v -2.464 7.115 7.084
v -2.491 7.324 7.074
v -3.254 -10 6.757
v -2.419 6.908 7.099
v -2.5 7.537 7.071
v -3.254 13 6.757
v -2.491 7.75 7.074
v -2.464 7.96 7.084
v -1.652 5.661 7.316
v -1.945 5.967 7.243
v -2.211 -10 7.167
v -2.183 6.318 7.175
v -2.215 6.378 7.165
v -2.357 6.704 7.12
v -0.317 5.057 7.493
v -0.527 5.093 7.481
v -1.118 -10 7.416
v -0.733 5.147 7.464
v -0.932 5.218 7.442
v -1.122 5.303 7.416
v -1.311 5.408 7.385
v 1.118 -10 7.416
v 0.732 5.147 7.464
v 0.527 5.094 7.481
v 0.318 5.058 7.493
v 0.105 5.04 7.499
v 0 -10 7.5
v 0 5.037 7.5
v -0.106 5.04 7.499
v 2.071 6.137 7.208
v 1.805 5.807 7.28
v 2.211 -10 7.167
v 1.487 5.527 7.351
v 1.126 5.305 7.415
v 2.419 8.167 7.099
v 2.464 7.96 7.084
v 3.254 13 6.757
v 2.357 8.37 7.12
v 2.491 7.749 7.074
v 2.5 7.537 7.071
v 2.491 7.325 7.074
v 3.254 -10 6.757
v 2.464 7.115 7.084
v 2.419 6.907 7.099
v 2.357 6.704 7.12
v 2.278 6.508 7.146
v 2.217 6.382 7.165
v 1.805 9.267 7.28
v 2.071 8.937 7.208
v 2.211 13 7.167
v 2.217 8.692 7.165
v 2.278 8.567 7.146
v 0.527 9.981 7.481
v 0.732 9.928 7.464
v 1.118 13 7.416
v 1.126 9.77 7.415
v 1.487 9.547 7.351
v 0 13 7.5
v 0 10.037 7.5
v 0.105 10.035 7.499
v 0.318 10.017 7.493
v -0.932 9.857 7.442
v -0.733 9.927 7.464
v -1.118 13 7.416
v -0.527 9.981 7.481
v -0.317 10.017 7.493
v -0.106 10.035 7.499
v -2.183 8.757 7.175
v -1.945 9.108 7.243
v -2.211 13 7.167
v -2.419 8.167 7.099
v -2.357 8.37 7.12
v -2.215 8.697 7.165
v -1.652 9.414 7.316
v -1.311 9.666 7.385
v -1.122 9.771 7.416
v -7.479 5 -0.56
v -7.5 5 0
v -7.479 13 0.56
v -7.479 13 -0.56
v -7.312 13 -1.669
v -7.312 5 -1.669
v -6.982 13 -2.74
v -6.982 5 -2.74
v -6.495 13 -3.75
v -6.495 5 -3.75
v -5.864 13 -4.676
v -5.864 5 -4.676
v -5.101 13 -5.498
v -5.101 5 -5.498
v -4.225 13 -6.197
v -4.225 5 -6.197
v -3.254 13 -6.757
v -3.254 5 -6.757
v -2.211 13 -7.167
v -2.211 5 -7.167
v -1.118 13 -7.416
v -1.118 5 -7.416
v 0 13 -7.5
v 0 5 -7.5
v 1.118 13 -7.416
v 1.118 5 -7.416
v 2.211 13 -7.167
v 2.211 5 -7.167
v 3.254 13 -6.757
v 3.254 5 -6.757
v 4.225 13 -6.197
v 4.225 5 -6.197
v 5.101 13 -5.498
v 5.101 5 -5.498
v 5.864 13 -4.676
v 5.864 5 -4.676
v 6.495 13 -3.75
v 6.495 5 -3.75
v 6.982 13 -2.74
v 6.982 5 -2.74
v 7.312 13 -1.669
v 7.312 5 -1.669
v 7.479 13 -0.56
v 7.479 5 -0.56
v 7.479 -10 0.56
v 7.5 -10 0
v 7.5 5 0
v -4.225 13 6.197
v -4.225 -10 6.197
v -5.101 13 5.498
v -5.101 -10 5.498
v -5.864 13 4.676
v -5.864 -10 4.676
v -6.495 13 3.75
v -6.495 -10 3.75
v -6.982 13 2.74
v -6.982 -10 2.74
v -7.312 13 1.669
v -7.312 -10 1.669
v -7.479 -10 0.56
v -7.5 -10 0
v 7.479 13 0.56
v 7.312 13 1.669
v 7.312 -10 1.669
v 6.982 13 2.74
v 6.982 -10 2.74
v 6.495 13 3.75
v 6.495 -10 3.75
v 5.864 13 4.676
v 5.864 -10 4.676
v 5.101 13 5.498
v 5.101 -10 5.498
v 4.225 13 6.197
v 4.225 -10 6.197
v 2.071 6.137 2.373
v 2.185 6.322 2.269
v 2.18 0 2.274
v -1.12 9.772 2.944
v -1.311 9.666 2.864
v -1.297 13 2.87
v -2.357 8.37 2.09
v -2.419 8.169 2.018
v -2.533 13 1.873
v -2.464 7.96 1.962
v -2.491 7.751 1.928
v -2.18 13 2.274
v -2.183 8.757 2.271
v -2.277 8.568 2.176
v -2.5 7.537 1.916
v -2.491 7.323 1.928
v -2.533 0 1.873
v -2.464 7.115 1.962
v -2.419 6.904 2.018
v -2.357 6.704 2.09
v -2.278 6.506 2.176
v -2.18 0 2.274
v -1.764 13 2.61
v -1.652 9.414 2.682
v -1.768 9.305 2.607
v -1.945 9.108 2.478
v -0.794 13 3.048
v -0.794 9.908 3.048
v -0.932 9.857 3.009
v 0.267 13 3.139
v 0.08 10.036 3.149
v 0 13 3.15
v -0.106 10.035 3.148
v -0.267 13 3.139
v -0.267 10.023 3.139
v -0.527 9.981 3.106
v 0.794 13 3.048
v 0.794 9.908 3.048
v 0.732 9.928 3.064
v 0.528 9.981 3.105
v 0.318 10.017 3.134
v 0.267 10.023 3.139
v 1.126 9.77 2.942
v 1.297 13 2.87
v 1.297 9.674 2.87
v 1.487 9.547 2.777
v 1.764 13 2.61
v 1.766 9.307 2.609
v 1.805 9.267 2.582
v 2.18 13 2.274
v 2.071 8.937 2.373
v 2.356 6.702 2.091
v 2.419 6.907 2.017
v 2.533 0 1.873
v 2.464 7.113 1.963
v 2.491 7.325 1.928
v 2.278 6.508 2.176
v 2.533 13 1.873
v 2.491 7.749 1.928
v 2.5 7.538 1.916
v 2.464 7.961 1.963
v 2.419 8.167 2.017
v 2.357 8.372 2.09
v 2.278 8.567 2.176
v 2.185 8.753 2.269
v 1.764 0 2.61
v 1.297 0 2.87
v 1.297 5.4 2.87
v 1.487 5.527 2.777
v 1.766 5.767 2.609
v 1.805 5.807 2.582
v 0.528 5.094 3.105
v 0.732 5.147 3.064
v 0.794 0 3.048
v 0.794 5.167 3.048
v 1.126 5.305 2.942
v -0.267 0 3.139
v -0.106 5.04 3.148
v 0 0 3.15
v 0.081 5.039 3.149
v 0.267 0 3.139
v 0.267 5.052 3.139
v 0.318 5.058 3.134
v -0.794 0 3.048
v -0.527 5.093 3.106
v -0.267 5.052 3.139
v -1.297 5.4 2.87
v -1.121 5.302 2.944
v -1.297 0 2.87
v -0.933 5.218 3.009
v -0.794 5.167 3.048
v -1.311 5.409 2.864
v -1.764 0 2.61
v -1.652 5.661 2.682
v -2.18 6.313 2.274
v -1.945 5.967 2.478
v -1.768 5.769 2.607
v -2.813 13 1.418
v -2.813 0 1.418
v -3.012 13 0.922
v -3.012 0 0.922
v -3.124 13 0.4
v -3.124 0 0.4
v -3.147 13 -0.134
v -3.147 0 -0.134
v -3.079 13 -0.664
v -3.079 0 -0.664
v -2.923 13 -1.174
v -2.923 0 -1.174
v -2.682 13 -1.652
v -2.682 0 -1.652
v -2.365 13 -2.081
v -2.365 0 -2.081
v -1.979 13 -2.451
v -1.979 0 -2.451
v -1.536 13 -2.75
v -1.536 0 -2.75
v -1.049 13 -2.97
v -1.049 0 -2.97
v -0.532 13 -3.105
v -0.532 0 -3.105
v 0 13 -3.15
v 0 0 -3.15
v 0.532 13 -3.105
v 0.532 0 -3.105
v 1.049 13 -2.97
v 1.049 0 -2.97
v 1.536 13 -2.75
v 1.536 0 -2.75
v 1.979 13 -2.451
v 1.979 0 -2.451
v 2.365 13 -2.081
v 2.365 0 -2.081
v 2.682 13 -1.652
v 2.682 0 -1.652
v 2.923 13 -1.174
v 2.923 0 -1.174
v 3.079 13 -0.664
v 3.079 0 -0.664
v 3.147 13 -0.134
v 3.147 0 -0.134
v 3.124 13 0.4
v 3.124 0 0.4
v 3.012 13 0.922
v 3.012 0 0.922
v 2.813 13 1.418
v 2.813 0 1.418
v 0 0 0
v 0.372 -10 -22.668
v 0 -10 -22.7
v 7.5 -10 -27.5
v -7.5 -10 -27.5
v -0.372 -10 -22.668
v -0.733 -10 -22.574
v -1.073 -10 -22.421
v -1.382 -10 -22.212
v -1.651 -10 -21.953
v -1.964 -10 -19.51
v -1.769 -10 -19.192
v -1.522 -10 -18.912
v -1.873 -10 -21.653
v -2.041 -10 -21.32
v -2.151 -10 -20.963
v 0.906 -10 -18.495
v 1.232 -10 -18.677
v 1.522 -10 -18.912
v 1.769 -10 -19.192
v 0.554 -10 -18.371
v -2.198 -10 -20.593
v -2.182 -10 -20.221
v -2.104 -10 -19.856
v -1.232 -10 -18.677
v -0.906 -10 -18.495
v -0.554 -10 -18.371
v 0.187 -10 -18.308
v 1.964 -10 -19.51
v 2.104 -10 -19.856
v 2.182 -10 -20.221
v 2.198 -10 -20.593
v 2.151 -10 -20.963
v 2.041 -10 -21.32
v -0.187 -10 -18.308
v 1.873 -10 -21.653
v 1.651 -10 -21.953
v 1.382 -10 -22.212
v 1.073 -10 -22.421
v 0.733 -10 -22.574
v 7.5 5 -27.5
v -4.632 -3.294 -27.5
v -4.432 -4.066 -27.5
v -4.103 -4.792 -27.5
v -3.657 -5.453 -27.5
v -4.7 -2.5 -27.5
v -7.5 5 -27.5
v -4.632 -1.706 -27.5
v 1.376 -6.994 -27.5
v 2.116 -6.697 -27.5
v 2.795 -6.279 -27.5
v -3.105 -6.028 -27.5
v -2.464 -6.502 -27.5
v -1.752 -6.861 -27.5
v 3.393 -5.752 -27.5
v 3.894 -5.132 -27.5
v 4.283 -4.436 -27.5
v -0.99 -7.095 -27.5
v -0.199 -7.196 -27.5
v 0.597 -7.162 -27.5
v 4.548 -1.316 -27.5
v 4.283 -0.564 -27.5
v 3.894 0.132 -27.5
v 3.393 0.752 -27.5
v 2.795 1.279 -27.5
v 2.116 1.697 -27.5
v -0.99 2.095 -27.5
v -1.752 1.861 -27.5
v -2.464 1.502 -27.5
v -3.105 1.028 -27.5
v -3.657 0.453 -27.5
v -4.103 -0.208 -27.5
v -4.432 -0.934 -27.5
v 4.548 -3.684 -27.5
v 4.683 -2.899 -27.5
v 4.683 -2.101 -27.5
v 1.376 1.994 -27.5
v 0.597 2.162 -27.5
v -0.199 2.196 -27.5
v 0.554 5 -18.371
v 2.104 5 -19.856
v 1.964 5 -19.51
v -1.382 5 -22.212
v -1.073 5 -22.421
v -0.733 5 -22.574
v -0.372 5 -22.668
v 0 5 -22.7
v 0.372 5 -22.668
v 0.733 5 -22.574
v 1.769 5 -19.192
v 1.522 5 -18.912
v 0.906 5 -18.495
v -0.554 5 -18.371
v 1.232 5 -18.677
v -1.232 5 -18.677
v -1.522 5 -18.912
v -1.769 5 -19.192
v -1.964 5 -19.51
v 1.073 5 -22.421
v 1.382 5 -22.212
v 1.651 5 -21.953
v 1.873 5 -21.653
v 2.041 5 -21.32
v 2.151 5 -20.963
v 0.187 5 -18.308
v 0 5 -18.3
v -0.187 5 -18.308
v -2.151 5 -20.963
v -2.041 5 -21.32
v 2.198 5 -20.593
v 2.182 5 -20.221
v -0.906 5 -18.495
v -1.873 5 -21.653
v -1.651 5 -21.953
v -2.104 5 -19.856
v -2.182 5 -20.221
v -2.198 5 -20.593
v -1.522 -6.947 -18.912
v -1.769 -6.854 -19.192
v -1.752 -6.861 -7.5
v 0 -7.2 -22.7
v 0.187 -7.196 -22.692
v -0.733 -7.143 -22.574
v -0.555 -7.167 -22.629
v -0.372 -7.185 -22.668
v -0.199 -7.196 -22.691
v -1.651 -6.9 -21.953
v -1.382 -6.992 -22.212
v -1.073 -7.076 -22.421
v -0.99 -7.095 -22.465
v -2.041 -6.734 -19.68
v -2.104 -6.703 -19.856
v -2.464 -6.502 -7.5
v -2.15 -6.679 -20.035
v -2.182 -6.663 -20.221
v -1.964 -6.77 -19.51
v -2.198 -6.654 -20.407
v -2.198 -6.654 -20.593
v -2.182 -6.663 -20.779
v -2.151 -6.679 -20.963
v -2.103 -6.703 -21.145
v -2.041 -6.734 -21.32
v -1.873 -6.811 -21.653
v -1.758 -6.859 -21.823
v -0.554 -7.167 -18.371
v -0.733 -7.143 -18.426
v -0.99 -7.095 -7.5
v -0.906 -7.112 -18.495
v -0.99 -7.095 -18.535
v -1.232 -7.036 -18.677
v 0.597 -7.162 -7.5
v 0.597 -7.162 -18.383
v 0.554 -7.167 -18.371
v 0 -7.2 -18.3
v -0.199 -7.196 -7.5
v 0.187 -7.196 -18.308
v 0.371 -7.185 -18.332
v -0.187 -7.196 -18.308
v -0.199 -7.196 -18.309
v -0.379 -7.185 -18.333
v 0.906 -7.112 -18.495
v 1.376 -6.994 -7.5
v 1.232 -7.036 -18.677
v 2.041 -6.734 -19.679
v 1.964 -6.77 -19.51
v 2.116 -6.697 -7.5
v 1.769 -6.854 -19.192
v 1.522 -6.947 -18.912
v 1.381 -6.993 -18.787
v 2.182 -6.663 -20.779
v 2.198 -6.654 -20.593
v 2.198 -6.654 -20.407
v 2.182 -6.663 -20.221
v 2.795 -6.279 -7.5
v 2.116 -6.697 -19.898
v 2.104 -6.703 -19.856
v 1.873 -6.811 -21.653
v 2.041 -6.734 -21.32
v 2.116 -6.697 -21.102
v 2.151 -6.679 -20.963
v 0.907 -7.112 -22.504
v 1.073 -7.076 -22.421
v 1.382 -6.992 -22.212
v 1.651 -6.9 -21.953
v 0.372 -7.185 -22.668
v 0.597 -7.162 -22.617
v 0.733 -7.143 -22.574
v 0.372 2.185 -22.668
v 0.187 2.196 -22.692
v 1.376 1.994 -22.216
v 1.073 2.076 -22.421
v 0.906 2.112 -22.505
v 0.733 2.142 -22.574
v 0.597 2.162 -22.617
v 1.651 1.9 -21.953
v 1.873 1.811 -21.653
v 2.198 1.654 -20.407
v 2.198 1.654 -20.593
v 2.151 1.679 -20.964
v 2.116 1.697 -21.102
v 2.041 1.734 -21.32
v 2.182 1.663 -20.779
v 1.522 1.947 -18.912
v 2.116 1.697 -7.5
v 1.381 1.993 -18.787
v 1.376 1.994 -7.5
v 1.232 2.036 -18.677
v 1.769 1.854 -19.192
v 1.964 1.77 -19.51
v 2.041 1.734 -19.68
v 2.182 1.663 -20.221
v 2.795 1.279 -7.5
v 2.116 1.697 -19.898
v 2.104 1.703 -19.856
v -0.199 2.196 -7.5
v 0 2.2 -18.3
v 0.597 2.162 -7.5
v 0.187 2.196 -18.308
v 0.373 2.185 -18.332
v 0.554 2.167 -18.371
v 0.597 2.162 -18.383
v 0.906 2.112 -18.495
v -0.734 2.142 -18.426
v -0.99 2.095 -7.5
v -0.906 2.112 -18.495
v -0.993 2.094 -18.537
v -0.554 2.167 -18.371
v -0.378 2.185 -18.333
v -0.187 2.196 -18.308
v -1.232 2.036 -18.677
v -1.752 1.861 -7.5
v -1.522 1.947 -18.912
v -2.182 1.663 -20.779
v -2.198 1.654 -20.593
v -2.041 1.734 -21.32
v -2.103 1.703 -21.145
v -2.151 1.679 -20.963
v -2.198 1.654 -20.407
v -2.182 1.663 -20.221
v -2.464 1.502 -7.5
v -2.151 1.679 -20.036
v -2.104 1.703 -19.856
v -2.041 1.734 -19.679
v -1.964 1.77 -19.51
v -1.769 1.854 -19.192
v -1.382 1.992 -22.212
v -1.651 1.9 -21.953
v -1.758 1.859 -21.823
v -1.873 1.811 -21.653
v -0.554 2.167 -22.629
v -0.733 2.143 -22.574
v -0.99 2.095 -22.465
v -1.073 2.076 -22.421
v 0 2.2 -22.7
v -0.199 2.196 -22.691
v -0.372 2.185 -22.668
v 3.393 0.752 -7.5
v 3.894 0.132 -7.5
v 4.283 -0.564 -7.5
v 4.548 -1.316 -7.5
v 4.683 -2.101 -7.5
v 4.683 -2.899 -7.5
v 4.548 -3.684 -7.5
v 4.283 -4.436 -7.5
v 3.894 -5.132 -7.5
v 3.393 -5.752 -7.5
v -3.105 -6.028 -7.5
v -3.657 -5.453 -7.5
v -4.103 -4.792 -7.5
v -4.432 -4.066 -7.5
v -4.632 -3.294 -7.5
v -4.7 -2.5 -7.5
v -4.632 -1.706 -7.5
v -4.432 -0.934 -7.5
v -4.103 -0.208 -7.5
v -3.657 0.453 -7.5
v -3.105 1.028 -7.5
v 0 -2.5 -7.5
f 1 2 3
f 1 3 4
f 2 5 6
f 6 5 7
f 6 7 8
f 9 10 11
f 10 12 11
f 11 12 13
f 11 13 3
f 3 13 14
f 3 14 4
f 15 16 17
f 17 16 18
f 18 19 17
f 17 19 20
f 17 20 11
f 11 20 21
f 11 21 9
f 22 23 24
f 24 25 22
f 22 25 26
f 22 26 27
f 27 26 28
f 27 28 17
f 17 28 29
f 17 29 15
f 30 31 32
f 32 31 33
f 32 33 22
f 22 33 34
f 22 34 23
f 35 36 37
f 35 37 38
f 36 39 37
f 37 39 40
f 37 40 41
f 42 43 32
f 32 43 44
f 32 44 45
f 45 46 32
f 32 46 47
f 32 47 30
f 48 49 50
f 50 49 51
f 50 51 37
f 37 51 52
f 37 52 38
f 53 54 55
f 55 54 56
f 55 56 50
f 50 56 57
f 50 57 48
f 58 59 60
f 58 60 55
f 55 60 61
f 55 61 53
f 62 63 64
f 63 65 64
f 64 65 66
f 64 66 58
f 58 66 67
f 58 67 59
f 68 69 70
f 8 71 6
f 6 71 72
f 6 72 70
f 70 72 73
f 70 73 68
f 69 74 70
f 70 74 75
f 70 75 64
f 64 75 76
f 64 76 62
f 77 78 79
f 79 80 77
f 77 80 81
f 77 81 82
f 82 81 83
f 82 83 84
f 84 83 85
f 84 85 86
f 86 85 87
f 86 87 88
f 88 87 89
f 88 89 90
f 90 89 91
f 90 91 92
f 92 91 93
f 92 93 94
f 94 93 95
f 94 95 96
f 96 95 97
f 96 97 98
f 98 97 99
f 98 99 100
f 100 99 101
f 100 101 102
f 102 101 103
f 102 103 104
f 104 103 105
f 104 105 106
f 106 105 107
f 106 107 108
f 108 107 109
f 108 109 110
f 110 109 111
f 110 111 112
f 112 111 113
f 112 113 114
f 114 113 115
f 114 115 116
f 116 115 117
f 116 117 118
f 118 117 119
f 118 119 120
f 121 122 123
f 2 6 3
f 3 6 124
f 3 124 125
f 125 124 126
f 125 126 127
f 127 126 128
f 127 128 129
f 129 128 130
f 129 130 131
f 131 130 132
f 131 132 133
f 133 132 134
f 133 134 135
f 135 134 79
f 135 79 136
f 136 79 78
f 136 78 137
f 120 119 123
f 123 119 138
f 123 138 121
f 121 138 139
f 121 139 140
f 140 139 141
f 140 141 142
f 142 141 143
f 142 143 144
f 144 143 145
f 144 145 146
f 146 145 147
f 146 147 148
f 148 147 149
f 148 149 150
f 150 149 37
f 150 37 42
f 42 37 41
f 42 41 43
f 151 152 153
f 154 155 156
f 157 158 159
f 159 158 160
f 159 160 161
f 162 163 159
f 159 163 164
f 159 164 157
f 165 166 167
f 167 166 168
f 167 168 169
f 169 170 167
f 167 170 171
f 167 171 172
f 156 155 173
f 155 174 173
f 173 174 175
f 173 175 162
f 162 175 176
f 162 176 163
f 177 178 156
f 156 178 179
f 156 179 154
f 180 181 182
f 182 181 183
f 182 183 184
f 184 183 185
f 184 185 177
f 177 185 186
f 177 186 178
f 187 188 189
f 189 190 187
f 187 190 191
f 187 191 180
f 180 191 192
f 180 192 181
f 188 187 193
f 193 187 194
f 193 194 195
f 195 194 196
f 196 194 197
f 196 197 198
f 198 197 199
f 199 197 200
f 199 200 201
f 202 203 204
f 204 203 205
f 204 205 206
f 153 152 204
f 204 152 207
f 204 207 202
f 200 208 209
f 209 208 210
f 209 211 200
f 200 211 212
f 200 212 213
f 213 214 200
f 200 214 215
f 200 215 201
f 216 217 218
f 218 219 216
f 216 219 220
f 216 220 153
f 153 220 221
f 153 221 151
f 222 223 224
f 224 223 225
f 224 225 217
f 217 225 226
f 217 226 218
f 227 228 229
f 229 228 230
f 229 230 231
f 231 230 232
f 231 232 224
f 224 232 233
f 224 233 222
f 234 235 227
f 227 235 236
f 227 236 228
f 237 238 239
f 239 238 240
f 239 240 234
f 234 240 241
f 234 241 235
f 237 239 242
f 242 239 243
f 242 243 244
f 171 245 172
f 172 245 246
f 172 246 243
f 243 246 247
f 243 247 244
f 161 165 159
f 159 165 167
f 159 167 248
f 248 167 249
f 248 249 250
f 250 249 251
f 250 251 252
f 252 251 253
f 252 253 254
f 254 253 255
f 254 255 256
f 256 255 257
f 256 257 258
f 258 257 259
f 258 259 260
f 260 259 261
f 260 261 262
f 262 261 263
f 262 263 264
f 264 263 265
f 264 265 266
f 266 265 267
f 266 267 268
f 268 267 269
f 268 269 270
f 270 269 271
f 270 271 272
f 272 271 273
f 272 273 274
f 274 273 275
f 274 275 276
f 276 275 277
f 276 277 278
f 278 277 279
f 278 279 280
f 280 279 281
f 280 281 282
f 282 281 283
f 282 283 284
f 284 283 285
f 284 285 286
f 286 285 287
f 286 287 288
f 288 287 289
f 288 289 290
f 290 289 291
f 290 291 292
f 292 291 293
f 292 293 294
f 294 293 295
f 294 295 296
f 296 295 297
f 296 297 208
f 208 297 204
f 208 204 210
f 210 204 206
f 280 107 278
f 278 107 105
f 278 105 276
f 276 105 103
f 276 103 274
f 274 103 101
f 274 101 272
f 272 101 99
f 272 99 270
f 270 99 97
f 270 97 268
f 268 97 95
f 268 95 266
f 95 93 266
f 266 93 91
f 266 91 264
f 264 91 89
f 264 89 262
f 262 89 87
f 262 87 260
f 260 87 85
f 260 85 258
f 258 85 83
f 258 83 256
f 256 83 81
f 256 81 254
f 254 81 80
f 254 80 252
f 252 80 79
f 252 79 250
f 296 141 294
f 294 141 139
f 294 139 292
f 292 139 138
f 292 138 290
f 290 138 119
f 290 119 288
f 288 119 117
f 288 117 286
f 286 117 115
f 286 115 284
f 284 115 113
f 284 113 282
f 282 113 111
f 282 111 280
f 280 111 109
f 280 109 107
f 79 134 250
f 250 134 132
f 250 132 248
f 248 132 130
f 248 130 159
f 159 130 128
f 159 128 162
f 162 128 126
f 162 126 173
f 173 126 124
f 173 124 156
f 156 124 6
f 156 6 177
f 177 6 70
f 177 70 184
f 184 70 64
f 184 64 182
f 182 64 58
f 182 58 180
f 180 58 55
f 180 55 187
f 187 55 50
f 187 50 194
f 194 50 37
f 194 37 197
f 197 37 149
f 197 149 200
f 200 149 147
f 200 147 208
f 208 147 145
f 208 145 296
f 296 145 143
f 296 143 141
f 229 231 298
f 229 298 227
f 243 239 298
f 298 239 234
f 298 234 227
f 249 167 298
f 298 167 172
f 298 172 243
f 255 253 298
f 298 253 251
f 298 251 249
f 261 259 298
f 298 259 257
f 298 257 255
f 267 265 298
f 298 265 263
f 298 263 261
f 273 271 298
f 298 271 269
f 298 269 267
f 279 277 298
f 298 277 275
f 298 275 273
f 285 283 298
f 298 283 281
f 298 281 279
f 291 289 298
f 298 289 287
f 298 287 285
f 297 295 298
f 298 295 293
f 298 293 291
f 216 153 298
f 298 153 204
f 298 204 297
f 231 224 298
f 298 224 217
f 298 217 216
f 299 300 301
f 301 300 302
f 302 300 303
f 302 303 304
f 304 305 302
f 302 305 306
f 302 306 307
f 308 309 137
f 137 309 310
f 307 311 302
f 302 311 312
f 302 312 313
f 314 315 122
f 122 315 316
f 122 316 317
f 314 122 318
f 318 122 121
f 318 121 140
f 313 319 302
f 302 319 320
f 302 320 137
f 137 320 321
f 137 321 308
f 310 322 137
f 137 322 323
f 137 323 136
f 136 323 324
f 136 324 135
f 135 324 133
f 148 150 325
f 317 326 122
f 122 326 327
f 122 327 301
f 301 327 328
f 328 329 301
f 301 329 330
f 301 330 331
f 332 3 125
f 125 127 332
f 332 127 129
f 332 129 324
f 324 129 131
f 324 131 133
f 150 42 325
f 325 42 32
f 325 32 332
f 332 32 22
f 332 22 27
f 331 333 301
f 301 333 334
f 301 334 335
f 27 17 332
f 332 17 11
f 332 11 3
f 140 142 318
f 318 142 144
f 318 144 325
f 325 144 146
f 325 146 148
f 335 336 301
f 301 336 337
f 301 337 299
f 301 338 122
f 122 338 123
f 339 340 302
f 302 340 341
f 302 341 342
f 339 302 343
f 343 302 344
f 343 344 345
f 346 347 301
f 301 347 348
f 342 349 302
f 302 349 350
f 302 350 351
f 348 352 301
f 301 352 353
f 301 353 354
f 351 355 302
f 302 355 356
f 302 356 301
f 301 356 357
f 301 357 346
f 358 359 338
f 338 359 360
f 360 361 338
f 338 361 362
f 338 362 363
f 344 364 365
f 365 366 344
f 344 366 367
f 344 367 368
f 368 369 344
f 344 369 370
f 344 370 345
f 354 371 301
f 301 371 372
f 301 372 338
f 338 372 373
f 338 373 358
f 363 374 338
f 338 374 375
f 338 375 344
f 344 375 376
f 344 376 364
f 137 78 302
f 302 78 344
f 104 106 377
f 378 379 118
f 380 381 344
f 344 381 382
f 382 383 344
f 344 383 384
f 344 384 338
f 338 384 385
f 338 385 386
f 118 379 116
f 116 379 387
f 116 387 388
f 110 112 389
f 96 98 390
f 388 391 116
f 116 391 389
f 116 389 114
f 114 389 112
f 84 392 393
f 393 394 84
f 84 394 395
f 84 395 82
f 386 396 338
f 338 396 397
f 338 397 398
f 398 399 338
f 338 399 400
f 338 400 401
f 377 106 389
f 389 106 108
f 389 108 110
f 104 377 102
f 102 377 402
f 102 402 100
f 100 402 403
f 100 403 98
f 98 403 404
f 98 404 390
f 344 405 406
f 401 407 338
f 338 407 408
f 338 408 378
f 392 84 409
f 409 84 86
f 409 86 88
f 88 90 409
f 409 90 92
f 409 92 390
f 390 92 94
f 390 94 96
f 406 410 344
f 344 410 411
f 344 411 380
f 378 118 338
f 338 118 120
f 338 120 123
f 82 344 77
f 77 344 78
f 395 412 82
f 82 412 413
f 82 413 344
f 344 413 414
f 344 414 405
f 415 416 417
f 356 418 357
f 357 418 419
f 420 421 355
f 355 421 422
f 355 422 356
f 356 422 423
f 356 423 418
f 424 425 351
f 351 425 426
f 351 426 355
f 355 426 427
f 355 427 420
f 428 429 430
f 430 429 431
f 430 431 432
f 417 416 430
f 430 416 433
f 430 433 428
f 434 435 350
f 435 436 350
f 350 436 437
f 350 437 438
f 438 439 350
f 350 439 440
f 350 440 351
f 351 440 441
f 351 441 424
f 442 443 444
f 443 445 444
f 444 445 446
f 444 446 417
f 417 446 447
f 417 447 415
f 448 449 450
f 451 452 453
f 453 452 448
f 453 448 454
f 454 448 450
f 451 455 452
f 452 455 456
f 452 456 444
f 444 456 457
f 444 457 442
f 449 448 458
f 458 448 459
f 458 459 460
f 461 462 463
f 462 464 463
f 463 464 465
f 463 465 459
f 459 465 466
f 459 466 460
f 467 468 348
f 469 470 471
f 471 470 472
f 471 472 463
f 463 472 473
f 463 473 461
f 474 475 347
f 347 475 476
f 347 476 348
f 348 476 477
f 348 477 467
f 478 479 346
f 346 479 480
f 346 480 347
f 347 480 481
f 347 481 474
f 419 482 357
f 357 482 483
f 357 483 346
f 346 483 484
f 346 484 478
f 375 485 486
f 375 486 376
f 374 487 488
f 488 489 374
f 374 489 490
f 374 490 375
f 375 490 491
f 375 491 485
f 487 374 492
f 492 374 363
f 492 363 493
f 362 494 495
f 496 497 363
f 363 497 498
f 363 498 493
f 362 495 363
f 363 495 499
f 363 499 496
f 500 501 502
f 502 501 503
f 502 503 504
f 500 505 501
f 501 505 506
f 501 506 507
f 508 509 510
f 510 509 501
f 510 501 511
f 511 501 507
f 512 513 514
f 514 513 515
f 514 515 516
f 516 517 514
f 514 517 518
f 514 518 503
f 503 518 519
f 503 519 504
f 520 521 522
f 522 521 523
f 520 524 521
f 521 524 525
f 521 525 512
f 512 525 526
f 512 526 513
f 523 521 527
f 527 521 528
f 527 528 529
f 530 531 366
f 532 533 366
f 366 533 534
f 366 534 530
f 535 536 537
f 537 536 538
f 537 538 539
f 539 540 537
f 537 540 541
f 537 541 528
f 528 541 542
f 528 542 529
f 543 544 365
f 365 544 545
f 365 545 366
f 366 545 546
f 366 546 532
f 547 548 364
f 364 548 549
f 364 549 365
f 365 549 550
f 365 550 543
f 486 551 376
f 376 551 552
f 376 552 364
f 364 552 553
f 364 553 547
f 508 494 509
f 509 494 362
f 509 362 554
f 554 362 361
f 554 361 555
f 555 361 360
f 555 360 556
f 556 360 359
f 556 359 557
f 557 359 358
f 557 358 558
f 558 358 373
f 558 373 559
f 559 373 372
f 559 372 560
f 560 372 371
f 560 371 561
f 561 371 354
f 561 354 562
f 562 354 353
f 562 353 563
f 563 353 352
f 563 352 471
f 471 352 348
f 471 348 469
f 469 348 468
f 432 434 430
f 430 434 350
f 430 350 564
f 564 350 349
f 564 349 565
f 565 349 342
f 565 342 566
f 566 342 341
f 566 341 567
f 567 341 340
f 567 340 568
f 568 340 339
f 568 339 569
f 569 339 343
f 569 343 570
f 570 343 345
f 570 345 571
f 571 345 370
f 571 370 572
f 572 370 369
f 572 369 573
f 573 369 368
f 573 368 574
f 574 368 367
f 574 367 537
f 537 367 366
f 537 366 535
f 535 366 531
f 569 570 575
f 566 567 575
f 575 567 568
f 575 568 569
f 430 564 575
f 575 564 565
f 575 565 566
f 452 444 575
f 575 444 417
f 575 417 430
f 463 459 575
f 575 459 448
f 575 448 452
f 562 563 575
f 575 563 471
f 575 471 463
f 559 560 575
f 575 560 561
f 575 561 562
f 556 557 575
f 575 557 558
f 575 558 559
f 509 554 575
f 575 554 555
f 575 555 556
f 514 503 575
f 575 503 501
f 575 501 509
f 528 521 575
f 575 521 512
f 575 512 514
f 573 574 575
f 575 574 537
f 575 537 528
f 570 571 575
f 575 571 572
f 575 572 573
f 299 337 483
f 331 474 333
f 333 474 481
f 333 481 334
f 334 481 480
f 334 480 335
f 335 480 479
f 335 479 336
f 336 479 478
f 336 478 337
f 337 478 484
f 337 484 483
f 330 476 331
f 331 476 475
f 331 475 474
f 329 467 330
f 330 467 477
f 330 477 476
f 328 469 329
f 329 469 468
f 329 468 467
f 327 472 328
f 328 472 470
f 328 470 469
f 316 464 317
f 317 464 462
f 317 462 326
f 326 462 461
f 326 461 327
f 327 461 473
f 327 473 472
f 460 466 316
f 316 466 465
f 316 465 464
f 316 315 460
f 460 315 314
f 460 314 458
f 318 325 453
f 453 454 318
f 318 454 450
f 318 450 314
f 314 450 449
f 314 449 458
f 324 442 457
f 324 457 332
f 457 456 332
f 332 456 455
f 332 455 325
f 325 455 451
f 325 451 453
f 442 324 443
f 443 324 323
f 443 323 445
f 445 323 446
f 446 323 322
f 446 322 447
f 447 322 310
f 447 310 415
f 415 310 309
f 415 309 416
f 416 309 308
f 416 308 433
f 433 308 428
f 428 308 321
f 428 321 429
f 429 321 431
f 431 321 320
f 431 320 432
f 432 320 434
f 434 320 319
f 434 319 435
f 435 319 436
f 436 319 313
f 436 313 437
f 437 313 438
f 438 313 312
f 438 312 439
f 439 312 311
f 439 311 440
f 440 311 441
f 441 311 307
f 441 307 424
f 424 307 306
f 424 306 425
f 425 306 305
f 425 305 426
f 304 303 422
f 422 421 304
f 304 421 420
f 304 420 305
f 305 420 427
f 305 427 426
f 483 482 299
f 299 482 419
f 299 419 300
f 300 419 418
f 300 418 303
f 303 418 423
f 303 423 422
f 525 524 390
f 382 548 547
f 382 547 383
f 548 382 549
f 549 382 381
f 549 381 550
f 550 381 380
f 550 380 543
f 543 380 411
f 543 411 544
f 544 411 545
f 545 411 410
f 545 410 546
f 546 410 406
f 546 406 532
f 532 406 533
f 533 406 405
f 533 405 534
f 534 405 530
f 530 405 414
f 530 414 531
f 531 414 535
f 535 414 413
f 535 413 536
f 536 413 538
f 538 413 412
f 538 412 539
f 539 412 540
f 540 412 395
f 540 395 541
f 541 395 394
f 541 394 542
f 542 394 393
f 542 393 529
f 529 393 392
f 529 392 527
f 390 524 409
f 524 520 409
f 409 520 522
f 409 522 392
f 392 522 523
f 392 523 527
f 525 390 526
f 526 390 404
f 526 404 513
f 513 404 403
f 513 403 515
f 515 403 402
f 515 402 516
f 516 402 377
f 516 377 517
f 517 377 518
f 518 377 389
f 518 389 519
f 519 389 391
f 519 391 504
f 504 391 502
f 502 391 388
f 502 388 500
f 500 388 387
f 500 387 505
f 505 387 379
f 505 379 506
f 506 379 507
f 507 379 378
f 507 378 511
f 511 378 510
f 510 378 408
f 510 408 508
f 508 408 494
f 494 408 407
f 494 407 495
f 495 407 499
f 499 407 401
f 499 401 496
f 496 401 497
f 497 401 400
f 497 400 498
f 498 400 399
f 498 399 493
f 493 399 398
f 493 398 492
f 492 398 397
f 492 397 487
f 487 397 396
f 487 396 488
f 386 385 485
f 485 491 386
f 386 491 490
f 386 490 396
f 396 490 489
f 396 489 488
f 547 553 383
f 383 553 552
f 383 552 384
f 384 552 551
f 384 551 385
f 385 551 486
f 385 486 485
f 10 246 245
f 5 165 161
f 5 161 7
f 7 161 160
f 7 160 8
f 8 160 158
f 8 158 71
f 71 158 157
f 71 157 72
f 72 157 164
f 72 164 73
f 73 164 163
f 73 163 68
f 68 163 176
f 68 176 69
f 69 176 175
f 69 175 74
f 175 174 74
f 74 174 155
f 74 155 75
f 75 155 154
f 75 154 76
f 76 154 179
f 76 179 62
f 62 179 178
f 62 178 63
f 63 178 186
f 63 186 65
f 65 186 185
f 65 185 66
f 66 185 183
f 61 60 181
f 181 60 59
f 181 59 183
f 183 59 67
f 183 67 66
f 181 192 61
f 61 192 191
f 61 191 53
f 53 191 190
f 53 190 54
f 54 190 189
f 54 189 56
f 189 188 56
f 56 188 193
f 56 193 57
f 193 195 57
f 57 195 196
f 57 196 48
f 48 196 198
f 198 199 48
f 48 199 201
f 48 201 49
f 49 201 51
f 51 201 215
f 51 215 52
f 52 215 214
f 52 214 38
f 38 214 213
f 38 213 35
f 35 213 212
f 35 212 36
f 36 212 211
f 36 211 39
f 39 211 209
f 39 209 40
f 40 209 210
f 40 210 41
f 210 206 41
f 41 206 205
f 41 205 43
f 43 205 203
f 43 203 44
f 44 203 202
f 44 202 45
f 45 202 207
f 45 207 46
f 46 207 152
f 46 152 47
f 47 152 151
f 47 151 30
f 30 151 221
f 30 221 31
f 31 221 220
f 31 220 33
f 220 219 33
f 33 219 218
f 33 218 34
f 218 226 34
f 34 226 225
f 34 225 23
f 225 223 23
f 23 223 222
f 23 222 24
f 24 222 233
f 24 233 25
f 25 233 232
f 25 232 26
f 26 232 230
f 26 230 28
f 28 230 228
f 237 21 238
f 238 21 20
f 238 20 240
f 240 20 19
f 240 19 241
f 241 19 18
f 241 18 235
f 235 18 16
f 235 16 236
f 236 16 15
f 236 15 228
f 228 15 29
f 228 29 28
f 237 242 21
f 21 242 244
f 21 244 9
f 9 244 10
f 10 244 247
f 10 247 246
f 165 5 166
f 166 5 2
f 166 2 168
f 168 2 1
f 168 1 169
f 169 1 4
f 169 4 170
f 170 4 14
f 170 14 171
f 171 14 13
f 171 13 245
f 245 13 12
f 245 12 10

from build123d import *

# Parameters (mm, degrees)
SKETCH1_R                = 7.5
SKETCH1_R_2              = 3.15
BOSS_EXTRUDE1_DEPTH      = 13
BOSS_EXTRUDE2_START      = 10
SKETCH2_R                = 7.5
BOSS_EXTRUDE2_DEPTH      = 10
BOSS_EXTRUDE4_DEPTH      = 5
BOSS_EXTRUDE4_DEPTH_BACK = 10
SKETCH7_R                = 4.7
CUT_EXTRUDE2_DEPTH       = 20
SKETCH9_R                = 2.2
CUT_EXTRUDE4_DEPTH       = 37.626493144
CUT_EXTRUDE5_REACH       = 33.329
CUT_EXTRUDE5_END_RADIUS  = 7.5
SKETCH4_R                = 2.5


with BuildPart() as part:
    # Sketch1 → Boss-Extrude1 (new body)
    with BuildSketch(Plane(origin=(0, 0, 0), x_dir=(1, 0, 0), z_dir=(0, 1, 0))):
        with Locations(Location((0, 0, 0), (0, 0, 90))):
            Circle(SKETCH1_R)
        with Locations(Location((0, 0, 0), (0, 0, 90))):
            Circle(SKETCH1_R_2, mode=Mode.SUBTRACT)
    extrude(amount=BOSS_EXTRUDE1_DEPTH)

    # Sketch2 → Boss-Extrude2 (add)
    with BuildSketch(Plane.XZ.offset(BOSS_EXTRUDE2_START)):
        with Locations(Location((0, 0, 0), (0, 0, 270))):
            Circle(SKETCH2_R)
    extrude(amount=-BOSS_EXTRUDE2_DEPTH)

    # Sketch6 → Boss-Extrude4 (add, two sides: drawn at the far end of the back side and taken through both)
    with BuildSketch(Plane(origin=(0, 0, 0), x_dir=(1, 0, 0), z_dir=(0, 1, 0)).offset(-BOSS_EXTRUDE4_DEPTH_BACK)):
        with BuildLine():
            Line((-7.5, 0), (-7.5, 27.5))
            Line((-7.5, 27.5), (7.5, 27.5))
            Line((7.5, 27.5), (7.5, 0))
            ThreePointArc((7.5, 0), (0, 7.5), (-7.5, 0))
        make_face()
    extrude(amount=BOSS_EXTRUDE4_DEPTH + BOSS_EXTRUDE4_DEPTH_BACK)

    # Sketch7 → Cut-Extrude2 (cut)
    with BuildSketch(Plane(origin=(0, 0, -27.5), x_dir=(-1, 0, 0), z_dir=(0, 0, -1))):
        with Locations((0, -2.5)):
            Circle(SKETCH7_R)
    extrude(amount=-CUT_EXTRUDE2_DEPTH, mode=Mode.SUBTRACT)

    # Sketch9 → Cut-Extrude4 (cut, through all)
    with BuildSketch(Plane.XZ.offset(10)):
        with Locations(Location((0, -20.5, 0), (0, 0, 270))):
            Circle(SKETCH9_R)
    extrude(amount=-CUT_EXTRUDE4_DEPTH, mode=Mode.SUBTRACT)

    # Cut-Extrude5: up to this cylinder (the profile starts inside it)
    cut_extrude5_end = Plane(origin=(0, 7.53728, 0), z_dir=(0, -1, 0)) * Cylinder(CUT_EXTRUDE5_END_RADIUS, 82.658, mode=Mode.PRIVATE)
    # Sketch4 → Cut-Extrude5 (cut, up to the surface)
    with BuildSketch(Plane.XY, mode=Mode.PRIVATE) as cut_extrude5_sk1:
        with Locations(Location((0, 7.537279813, 0), (0, 0, 180))):
            Circle(SKETCH4_R)
    cut_extrude5_tool1 = extrude(cut_extrude5_sk1.sketch, amount=CUT_EXTRUDE5_REACH, mode=Mode.PRIVATE) & cut_extrude5_end
    add(cut_extrude5_tool1.solids().sort_by_distance((0, 7.53728, 0))[0], mode=Mode.SUBTRACT)


solid = part.part
